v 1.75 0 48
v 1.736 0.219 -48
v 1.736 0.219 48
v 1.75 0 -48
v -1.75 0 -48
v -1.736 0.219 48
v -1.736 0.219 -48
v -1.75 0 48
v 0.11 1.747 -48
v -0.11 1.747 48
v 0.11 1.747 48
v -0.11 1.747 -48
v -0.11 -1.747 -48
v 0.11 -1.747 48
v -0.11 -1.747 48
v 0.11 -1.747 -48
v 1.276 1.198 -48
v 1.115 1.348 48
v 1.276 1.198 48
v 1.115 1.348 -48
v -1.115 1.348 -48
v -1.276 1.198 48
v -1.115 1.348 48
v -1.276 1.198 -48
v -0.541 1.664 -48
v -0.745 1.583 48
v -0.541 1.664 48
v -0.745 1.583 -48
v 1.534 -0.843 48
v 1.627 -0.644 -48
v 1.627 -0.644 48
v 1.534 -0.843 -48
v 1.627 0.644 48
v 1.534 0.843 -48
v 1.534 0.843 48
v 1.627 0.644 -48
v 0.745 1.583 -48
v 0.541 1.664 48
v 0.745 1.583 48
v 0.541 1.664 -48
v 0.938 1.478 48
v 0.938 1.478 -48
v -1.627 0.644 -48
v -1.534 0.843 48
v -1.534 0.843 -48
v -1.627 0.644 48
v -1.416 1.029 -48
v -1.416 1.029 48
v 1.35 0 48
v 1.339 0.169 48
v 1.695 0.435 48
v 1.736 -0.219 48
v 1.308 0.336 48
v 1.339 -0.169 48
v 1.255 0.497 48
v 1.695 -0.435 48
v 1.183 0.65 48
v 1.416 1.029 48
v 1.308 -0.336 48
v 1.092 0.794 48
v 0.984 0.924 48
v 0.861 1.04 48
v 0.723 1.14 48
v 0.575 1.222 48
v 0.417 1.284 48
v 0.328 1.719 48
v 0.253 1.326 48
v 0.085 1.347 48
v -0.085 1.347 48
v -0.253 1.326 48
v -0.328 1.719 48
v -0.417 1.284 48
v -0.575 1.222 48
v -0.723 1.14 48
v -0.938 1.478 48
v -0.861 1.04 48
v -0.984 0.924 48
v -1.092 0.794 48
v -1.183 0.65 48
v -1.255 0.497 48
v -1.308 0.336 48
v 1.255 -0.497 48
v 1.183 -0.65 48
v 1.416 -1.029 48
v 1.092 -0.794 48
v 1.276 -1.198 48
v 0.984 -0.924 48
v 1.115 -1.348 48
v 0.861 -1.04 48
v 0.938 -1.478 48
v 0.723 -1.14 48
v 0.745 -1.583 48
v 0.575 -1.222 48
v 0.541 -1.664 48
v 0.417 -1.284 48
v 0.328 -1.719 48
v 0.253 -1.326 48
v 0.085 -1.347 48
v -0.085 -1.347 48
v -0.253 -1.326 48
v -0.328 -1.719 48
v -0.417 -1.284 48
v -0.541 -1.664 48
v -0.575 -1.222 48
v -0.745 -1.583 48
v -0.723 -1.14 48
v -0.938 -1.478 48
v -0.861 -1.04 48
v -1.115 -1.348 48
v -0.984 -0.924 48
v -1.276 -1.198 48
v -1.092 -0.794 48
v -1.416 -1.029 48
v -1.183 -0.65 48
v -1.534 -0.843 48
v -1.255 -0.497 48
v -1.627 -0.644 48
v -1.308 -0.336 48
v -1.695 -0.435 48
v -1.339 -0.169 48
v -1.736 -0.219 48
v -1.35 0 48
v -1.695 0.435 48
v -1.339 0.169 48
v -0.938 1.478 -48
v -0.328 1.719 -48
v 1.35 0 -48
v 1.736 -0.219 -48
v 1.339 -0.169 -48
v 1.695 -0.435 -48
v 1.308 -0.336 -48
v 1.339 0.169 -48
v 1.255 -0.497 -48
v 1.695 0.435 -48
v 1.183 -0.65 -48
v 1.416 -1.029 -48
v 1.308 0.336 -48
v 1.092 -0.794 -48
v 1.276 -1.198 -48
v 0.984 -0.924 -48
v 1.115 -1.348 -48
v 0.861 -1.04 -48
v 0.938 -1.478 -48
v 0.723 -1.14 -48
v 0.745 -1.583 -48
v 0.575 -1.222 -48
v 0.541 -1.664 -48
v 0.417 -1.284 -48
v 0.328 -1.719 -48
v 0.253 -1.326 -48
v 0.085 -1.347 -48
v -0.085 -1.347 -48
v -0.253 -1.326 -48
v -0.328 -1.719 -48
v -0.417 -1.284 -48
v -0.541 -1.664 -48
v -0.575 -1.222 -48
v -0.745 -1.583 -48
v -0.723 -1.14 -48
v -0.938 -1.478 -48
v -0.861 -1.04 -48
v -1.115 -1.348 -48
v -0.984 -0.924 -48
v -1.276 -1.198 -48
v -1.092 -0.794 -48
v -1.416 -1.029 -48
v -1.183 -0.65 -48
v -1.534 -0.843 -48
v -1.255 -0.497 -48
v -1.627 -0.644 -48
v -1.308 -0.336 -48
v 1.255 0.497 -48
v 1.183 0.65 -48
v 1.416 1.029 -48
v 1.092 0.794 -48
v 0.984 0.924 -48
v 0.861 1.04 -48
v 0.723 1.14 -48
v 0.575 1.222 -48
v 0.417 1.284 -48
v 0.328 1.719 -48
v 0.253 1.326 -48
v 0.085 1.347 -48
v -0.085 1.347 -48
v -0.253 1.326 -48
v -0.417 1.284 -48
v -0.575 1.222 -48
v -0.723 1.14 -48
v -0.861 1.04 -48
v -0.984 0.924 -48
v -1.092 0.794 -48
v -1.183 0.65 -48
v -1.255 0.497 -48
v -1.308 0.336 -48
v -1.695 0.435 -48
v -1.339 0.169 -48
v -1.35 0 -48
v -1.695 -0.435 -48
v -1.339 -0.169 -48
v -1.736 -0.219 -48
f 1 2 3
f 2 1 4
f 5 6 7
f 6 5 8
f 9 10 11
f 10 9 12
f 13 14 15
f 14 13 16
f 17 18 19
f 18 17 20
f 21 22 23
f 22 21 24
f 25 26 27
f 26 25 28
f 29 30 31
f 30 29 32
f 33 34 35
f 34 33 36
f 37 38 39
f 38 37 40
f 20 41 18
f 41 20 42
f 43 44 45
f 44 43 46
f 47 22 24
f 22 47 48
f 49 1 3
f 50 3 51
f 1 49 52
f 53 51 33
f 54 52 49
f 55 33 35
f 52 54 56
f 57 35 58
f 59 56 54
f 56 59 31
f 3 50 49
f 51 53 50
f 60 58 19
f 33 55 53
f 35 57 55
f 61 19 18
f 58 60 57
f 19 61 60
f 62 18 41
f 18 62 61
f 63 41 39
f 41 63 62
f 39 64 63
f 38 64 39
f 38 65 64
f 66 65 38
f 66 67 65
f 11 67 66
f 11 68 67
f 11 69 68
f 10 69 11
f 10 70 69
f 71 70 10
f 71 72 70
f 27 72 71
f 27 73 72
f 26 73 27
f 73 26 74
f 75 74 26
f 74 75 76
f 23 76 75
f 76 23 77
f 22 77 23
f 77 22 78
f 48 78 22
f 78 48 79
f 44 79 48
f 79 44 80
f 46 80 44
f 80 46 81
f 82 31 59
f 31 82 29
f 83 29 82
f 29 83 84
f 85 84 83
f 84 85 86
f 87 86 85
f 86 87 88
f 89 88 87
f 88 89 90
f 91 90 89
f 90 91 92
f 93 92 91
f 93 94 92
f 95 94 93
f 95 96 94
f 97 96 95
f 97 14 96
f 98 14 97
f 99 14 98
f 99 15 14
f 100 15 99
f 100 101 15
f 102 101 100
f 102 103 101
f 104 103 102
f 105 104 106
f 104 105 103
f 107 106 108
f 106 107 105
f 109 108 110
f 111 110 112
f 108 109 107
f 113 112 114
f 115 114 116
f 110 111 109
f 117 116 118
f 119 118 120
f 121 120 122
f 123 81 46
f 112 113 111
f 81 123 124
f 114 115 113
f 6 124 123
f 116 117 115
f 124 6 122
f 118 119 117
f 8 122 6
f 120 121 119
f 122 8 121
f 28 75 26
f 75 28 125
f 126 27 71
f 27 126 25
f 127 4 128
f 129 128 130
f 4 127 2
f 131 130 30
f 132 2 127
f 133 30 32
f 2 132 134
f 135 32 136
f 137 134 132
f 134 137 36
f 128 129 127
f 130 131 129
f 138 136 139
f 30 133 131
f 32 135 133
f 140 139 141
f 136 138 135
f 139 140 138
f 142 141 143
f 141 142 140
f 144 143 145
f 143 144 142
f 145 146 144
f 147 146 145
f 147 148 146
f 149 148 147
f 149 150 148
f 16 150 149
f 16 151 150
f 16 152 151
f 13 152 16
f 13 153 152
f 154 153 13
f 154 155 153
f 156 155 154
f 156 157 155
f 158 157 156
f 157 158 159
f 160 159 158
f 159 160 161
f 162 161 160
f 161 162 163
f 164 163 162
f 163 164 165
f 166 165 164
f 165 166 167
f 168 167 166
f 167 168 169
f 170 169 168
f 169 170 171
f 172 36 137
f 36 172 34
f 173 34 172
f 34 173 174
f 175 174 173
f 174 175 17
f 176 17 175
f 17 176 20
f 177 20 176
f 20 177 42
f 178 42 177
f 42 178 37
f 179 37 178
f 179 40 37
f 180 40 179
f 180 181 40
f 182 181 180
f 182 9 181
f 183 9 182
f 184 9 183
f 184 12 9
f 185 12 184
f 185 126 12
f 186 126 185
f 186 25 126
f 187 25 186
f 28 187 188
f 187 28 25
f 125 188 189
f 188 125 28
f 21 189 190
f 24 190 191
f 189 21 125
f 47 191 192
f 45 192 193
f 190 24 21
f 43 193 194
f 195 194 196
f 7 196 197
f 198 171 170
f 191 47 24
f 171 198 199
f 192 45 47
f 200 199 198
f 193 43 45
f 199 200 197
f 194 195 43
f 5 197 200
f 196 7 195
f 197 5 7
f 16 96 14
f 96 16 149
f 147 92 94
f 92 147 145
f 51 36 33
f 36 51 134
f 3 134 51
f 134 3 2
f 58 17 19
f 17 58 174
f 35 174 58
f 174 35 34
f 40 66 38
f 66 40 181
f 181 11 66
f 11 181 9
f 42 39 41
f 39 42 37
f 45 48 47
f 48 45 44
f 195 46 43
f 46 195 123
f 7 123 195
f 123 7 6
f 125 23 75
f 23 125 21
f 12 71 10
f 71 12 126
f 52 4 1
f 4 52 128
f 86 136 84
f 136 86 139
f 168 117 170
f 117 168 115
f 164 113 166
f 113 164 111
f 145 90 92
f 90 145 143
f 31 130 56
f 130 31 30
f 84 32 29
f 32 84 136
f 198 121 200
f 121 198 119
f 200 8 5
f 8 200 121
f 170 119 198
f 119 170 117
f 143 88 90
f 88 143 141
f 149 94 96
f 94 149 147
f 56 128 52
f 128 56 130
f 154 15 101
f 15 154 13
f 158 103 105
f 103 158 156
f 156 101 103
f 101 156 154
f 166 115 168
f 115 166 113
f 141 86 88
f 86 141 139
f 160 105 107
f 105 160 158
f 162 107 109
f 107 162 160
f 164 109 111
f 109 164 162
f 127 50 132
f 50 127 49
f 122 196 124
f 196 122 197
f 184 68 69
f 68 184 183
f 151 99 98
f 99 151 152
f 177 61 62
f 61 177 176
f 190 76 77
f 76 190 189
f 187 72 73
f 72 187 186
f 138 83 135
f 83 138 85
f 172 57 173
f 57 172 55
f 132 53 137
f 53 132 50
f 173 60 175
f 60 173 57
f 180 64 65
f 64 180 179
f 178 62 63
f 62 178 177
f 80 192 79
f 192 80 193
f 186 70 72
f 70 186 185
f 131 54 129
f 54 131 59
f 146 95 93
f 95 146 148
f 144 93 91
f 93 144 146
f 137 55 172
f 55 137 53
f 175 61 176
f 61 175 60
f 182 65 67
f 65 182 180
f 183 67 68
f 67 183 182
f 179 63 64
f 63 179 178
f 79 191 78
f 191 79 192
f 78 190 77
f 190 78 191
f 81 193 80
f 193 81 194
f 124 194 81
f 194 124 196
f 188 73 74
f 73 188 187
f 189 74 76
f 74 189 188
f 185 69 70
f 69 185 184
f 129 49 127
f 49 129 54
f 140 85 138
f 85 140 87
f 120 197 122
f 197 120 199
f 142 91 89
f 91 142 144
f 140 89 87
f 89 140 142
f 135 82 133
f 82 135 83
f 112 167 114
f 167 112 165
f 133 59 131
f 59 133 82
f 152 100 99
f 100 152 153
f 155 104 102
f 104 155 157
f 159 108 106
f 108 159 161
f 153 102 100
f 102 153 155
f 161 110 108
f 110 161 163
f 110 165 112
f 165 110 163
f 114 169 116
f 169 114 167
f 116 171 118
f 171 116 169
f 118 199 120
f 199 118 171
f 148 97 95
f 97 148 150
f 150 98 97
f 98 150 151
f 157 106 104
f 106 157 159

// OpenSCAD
$fn = 50;


difference() {
	union() {
		translate(v = [0, 0, -48.0000000000]) {
			cylinder(h = 96, r = 1.7500000000);
		}
	}
	union() {
		translate(v = [0, 0, -100.0000000000]) {
			cylinder(h = 200, r = 1.3500000000);
		}
	}
}
